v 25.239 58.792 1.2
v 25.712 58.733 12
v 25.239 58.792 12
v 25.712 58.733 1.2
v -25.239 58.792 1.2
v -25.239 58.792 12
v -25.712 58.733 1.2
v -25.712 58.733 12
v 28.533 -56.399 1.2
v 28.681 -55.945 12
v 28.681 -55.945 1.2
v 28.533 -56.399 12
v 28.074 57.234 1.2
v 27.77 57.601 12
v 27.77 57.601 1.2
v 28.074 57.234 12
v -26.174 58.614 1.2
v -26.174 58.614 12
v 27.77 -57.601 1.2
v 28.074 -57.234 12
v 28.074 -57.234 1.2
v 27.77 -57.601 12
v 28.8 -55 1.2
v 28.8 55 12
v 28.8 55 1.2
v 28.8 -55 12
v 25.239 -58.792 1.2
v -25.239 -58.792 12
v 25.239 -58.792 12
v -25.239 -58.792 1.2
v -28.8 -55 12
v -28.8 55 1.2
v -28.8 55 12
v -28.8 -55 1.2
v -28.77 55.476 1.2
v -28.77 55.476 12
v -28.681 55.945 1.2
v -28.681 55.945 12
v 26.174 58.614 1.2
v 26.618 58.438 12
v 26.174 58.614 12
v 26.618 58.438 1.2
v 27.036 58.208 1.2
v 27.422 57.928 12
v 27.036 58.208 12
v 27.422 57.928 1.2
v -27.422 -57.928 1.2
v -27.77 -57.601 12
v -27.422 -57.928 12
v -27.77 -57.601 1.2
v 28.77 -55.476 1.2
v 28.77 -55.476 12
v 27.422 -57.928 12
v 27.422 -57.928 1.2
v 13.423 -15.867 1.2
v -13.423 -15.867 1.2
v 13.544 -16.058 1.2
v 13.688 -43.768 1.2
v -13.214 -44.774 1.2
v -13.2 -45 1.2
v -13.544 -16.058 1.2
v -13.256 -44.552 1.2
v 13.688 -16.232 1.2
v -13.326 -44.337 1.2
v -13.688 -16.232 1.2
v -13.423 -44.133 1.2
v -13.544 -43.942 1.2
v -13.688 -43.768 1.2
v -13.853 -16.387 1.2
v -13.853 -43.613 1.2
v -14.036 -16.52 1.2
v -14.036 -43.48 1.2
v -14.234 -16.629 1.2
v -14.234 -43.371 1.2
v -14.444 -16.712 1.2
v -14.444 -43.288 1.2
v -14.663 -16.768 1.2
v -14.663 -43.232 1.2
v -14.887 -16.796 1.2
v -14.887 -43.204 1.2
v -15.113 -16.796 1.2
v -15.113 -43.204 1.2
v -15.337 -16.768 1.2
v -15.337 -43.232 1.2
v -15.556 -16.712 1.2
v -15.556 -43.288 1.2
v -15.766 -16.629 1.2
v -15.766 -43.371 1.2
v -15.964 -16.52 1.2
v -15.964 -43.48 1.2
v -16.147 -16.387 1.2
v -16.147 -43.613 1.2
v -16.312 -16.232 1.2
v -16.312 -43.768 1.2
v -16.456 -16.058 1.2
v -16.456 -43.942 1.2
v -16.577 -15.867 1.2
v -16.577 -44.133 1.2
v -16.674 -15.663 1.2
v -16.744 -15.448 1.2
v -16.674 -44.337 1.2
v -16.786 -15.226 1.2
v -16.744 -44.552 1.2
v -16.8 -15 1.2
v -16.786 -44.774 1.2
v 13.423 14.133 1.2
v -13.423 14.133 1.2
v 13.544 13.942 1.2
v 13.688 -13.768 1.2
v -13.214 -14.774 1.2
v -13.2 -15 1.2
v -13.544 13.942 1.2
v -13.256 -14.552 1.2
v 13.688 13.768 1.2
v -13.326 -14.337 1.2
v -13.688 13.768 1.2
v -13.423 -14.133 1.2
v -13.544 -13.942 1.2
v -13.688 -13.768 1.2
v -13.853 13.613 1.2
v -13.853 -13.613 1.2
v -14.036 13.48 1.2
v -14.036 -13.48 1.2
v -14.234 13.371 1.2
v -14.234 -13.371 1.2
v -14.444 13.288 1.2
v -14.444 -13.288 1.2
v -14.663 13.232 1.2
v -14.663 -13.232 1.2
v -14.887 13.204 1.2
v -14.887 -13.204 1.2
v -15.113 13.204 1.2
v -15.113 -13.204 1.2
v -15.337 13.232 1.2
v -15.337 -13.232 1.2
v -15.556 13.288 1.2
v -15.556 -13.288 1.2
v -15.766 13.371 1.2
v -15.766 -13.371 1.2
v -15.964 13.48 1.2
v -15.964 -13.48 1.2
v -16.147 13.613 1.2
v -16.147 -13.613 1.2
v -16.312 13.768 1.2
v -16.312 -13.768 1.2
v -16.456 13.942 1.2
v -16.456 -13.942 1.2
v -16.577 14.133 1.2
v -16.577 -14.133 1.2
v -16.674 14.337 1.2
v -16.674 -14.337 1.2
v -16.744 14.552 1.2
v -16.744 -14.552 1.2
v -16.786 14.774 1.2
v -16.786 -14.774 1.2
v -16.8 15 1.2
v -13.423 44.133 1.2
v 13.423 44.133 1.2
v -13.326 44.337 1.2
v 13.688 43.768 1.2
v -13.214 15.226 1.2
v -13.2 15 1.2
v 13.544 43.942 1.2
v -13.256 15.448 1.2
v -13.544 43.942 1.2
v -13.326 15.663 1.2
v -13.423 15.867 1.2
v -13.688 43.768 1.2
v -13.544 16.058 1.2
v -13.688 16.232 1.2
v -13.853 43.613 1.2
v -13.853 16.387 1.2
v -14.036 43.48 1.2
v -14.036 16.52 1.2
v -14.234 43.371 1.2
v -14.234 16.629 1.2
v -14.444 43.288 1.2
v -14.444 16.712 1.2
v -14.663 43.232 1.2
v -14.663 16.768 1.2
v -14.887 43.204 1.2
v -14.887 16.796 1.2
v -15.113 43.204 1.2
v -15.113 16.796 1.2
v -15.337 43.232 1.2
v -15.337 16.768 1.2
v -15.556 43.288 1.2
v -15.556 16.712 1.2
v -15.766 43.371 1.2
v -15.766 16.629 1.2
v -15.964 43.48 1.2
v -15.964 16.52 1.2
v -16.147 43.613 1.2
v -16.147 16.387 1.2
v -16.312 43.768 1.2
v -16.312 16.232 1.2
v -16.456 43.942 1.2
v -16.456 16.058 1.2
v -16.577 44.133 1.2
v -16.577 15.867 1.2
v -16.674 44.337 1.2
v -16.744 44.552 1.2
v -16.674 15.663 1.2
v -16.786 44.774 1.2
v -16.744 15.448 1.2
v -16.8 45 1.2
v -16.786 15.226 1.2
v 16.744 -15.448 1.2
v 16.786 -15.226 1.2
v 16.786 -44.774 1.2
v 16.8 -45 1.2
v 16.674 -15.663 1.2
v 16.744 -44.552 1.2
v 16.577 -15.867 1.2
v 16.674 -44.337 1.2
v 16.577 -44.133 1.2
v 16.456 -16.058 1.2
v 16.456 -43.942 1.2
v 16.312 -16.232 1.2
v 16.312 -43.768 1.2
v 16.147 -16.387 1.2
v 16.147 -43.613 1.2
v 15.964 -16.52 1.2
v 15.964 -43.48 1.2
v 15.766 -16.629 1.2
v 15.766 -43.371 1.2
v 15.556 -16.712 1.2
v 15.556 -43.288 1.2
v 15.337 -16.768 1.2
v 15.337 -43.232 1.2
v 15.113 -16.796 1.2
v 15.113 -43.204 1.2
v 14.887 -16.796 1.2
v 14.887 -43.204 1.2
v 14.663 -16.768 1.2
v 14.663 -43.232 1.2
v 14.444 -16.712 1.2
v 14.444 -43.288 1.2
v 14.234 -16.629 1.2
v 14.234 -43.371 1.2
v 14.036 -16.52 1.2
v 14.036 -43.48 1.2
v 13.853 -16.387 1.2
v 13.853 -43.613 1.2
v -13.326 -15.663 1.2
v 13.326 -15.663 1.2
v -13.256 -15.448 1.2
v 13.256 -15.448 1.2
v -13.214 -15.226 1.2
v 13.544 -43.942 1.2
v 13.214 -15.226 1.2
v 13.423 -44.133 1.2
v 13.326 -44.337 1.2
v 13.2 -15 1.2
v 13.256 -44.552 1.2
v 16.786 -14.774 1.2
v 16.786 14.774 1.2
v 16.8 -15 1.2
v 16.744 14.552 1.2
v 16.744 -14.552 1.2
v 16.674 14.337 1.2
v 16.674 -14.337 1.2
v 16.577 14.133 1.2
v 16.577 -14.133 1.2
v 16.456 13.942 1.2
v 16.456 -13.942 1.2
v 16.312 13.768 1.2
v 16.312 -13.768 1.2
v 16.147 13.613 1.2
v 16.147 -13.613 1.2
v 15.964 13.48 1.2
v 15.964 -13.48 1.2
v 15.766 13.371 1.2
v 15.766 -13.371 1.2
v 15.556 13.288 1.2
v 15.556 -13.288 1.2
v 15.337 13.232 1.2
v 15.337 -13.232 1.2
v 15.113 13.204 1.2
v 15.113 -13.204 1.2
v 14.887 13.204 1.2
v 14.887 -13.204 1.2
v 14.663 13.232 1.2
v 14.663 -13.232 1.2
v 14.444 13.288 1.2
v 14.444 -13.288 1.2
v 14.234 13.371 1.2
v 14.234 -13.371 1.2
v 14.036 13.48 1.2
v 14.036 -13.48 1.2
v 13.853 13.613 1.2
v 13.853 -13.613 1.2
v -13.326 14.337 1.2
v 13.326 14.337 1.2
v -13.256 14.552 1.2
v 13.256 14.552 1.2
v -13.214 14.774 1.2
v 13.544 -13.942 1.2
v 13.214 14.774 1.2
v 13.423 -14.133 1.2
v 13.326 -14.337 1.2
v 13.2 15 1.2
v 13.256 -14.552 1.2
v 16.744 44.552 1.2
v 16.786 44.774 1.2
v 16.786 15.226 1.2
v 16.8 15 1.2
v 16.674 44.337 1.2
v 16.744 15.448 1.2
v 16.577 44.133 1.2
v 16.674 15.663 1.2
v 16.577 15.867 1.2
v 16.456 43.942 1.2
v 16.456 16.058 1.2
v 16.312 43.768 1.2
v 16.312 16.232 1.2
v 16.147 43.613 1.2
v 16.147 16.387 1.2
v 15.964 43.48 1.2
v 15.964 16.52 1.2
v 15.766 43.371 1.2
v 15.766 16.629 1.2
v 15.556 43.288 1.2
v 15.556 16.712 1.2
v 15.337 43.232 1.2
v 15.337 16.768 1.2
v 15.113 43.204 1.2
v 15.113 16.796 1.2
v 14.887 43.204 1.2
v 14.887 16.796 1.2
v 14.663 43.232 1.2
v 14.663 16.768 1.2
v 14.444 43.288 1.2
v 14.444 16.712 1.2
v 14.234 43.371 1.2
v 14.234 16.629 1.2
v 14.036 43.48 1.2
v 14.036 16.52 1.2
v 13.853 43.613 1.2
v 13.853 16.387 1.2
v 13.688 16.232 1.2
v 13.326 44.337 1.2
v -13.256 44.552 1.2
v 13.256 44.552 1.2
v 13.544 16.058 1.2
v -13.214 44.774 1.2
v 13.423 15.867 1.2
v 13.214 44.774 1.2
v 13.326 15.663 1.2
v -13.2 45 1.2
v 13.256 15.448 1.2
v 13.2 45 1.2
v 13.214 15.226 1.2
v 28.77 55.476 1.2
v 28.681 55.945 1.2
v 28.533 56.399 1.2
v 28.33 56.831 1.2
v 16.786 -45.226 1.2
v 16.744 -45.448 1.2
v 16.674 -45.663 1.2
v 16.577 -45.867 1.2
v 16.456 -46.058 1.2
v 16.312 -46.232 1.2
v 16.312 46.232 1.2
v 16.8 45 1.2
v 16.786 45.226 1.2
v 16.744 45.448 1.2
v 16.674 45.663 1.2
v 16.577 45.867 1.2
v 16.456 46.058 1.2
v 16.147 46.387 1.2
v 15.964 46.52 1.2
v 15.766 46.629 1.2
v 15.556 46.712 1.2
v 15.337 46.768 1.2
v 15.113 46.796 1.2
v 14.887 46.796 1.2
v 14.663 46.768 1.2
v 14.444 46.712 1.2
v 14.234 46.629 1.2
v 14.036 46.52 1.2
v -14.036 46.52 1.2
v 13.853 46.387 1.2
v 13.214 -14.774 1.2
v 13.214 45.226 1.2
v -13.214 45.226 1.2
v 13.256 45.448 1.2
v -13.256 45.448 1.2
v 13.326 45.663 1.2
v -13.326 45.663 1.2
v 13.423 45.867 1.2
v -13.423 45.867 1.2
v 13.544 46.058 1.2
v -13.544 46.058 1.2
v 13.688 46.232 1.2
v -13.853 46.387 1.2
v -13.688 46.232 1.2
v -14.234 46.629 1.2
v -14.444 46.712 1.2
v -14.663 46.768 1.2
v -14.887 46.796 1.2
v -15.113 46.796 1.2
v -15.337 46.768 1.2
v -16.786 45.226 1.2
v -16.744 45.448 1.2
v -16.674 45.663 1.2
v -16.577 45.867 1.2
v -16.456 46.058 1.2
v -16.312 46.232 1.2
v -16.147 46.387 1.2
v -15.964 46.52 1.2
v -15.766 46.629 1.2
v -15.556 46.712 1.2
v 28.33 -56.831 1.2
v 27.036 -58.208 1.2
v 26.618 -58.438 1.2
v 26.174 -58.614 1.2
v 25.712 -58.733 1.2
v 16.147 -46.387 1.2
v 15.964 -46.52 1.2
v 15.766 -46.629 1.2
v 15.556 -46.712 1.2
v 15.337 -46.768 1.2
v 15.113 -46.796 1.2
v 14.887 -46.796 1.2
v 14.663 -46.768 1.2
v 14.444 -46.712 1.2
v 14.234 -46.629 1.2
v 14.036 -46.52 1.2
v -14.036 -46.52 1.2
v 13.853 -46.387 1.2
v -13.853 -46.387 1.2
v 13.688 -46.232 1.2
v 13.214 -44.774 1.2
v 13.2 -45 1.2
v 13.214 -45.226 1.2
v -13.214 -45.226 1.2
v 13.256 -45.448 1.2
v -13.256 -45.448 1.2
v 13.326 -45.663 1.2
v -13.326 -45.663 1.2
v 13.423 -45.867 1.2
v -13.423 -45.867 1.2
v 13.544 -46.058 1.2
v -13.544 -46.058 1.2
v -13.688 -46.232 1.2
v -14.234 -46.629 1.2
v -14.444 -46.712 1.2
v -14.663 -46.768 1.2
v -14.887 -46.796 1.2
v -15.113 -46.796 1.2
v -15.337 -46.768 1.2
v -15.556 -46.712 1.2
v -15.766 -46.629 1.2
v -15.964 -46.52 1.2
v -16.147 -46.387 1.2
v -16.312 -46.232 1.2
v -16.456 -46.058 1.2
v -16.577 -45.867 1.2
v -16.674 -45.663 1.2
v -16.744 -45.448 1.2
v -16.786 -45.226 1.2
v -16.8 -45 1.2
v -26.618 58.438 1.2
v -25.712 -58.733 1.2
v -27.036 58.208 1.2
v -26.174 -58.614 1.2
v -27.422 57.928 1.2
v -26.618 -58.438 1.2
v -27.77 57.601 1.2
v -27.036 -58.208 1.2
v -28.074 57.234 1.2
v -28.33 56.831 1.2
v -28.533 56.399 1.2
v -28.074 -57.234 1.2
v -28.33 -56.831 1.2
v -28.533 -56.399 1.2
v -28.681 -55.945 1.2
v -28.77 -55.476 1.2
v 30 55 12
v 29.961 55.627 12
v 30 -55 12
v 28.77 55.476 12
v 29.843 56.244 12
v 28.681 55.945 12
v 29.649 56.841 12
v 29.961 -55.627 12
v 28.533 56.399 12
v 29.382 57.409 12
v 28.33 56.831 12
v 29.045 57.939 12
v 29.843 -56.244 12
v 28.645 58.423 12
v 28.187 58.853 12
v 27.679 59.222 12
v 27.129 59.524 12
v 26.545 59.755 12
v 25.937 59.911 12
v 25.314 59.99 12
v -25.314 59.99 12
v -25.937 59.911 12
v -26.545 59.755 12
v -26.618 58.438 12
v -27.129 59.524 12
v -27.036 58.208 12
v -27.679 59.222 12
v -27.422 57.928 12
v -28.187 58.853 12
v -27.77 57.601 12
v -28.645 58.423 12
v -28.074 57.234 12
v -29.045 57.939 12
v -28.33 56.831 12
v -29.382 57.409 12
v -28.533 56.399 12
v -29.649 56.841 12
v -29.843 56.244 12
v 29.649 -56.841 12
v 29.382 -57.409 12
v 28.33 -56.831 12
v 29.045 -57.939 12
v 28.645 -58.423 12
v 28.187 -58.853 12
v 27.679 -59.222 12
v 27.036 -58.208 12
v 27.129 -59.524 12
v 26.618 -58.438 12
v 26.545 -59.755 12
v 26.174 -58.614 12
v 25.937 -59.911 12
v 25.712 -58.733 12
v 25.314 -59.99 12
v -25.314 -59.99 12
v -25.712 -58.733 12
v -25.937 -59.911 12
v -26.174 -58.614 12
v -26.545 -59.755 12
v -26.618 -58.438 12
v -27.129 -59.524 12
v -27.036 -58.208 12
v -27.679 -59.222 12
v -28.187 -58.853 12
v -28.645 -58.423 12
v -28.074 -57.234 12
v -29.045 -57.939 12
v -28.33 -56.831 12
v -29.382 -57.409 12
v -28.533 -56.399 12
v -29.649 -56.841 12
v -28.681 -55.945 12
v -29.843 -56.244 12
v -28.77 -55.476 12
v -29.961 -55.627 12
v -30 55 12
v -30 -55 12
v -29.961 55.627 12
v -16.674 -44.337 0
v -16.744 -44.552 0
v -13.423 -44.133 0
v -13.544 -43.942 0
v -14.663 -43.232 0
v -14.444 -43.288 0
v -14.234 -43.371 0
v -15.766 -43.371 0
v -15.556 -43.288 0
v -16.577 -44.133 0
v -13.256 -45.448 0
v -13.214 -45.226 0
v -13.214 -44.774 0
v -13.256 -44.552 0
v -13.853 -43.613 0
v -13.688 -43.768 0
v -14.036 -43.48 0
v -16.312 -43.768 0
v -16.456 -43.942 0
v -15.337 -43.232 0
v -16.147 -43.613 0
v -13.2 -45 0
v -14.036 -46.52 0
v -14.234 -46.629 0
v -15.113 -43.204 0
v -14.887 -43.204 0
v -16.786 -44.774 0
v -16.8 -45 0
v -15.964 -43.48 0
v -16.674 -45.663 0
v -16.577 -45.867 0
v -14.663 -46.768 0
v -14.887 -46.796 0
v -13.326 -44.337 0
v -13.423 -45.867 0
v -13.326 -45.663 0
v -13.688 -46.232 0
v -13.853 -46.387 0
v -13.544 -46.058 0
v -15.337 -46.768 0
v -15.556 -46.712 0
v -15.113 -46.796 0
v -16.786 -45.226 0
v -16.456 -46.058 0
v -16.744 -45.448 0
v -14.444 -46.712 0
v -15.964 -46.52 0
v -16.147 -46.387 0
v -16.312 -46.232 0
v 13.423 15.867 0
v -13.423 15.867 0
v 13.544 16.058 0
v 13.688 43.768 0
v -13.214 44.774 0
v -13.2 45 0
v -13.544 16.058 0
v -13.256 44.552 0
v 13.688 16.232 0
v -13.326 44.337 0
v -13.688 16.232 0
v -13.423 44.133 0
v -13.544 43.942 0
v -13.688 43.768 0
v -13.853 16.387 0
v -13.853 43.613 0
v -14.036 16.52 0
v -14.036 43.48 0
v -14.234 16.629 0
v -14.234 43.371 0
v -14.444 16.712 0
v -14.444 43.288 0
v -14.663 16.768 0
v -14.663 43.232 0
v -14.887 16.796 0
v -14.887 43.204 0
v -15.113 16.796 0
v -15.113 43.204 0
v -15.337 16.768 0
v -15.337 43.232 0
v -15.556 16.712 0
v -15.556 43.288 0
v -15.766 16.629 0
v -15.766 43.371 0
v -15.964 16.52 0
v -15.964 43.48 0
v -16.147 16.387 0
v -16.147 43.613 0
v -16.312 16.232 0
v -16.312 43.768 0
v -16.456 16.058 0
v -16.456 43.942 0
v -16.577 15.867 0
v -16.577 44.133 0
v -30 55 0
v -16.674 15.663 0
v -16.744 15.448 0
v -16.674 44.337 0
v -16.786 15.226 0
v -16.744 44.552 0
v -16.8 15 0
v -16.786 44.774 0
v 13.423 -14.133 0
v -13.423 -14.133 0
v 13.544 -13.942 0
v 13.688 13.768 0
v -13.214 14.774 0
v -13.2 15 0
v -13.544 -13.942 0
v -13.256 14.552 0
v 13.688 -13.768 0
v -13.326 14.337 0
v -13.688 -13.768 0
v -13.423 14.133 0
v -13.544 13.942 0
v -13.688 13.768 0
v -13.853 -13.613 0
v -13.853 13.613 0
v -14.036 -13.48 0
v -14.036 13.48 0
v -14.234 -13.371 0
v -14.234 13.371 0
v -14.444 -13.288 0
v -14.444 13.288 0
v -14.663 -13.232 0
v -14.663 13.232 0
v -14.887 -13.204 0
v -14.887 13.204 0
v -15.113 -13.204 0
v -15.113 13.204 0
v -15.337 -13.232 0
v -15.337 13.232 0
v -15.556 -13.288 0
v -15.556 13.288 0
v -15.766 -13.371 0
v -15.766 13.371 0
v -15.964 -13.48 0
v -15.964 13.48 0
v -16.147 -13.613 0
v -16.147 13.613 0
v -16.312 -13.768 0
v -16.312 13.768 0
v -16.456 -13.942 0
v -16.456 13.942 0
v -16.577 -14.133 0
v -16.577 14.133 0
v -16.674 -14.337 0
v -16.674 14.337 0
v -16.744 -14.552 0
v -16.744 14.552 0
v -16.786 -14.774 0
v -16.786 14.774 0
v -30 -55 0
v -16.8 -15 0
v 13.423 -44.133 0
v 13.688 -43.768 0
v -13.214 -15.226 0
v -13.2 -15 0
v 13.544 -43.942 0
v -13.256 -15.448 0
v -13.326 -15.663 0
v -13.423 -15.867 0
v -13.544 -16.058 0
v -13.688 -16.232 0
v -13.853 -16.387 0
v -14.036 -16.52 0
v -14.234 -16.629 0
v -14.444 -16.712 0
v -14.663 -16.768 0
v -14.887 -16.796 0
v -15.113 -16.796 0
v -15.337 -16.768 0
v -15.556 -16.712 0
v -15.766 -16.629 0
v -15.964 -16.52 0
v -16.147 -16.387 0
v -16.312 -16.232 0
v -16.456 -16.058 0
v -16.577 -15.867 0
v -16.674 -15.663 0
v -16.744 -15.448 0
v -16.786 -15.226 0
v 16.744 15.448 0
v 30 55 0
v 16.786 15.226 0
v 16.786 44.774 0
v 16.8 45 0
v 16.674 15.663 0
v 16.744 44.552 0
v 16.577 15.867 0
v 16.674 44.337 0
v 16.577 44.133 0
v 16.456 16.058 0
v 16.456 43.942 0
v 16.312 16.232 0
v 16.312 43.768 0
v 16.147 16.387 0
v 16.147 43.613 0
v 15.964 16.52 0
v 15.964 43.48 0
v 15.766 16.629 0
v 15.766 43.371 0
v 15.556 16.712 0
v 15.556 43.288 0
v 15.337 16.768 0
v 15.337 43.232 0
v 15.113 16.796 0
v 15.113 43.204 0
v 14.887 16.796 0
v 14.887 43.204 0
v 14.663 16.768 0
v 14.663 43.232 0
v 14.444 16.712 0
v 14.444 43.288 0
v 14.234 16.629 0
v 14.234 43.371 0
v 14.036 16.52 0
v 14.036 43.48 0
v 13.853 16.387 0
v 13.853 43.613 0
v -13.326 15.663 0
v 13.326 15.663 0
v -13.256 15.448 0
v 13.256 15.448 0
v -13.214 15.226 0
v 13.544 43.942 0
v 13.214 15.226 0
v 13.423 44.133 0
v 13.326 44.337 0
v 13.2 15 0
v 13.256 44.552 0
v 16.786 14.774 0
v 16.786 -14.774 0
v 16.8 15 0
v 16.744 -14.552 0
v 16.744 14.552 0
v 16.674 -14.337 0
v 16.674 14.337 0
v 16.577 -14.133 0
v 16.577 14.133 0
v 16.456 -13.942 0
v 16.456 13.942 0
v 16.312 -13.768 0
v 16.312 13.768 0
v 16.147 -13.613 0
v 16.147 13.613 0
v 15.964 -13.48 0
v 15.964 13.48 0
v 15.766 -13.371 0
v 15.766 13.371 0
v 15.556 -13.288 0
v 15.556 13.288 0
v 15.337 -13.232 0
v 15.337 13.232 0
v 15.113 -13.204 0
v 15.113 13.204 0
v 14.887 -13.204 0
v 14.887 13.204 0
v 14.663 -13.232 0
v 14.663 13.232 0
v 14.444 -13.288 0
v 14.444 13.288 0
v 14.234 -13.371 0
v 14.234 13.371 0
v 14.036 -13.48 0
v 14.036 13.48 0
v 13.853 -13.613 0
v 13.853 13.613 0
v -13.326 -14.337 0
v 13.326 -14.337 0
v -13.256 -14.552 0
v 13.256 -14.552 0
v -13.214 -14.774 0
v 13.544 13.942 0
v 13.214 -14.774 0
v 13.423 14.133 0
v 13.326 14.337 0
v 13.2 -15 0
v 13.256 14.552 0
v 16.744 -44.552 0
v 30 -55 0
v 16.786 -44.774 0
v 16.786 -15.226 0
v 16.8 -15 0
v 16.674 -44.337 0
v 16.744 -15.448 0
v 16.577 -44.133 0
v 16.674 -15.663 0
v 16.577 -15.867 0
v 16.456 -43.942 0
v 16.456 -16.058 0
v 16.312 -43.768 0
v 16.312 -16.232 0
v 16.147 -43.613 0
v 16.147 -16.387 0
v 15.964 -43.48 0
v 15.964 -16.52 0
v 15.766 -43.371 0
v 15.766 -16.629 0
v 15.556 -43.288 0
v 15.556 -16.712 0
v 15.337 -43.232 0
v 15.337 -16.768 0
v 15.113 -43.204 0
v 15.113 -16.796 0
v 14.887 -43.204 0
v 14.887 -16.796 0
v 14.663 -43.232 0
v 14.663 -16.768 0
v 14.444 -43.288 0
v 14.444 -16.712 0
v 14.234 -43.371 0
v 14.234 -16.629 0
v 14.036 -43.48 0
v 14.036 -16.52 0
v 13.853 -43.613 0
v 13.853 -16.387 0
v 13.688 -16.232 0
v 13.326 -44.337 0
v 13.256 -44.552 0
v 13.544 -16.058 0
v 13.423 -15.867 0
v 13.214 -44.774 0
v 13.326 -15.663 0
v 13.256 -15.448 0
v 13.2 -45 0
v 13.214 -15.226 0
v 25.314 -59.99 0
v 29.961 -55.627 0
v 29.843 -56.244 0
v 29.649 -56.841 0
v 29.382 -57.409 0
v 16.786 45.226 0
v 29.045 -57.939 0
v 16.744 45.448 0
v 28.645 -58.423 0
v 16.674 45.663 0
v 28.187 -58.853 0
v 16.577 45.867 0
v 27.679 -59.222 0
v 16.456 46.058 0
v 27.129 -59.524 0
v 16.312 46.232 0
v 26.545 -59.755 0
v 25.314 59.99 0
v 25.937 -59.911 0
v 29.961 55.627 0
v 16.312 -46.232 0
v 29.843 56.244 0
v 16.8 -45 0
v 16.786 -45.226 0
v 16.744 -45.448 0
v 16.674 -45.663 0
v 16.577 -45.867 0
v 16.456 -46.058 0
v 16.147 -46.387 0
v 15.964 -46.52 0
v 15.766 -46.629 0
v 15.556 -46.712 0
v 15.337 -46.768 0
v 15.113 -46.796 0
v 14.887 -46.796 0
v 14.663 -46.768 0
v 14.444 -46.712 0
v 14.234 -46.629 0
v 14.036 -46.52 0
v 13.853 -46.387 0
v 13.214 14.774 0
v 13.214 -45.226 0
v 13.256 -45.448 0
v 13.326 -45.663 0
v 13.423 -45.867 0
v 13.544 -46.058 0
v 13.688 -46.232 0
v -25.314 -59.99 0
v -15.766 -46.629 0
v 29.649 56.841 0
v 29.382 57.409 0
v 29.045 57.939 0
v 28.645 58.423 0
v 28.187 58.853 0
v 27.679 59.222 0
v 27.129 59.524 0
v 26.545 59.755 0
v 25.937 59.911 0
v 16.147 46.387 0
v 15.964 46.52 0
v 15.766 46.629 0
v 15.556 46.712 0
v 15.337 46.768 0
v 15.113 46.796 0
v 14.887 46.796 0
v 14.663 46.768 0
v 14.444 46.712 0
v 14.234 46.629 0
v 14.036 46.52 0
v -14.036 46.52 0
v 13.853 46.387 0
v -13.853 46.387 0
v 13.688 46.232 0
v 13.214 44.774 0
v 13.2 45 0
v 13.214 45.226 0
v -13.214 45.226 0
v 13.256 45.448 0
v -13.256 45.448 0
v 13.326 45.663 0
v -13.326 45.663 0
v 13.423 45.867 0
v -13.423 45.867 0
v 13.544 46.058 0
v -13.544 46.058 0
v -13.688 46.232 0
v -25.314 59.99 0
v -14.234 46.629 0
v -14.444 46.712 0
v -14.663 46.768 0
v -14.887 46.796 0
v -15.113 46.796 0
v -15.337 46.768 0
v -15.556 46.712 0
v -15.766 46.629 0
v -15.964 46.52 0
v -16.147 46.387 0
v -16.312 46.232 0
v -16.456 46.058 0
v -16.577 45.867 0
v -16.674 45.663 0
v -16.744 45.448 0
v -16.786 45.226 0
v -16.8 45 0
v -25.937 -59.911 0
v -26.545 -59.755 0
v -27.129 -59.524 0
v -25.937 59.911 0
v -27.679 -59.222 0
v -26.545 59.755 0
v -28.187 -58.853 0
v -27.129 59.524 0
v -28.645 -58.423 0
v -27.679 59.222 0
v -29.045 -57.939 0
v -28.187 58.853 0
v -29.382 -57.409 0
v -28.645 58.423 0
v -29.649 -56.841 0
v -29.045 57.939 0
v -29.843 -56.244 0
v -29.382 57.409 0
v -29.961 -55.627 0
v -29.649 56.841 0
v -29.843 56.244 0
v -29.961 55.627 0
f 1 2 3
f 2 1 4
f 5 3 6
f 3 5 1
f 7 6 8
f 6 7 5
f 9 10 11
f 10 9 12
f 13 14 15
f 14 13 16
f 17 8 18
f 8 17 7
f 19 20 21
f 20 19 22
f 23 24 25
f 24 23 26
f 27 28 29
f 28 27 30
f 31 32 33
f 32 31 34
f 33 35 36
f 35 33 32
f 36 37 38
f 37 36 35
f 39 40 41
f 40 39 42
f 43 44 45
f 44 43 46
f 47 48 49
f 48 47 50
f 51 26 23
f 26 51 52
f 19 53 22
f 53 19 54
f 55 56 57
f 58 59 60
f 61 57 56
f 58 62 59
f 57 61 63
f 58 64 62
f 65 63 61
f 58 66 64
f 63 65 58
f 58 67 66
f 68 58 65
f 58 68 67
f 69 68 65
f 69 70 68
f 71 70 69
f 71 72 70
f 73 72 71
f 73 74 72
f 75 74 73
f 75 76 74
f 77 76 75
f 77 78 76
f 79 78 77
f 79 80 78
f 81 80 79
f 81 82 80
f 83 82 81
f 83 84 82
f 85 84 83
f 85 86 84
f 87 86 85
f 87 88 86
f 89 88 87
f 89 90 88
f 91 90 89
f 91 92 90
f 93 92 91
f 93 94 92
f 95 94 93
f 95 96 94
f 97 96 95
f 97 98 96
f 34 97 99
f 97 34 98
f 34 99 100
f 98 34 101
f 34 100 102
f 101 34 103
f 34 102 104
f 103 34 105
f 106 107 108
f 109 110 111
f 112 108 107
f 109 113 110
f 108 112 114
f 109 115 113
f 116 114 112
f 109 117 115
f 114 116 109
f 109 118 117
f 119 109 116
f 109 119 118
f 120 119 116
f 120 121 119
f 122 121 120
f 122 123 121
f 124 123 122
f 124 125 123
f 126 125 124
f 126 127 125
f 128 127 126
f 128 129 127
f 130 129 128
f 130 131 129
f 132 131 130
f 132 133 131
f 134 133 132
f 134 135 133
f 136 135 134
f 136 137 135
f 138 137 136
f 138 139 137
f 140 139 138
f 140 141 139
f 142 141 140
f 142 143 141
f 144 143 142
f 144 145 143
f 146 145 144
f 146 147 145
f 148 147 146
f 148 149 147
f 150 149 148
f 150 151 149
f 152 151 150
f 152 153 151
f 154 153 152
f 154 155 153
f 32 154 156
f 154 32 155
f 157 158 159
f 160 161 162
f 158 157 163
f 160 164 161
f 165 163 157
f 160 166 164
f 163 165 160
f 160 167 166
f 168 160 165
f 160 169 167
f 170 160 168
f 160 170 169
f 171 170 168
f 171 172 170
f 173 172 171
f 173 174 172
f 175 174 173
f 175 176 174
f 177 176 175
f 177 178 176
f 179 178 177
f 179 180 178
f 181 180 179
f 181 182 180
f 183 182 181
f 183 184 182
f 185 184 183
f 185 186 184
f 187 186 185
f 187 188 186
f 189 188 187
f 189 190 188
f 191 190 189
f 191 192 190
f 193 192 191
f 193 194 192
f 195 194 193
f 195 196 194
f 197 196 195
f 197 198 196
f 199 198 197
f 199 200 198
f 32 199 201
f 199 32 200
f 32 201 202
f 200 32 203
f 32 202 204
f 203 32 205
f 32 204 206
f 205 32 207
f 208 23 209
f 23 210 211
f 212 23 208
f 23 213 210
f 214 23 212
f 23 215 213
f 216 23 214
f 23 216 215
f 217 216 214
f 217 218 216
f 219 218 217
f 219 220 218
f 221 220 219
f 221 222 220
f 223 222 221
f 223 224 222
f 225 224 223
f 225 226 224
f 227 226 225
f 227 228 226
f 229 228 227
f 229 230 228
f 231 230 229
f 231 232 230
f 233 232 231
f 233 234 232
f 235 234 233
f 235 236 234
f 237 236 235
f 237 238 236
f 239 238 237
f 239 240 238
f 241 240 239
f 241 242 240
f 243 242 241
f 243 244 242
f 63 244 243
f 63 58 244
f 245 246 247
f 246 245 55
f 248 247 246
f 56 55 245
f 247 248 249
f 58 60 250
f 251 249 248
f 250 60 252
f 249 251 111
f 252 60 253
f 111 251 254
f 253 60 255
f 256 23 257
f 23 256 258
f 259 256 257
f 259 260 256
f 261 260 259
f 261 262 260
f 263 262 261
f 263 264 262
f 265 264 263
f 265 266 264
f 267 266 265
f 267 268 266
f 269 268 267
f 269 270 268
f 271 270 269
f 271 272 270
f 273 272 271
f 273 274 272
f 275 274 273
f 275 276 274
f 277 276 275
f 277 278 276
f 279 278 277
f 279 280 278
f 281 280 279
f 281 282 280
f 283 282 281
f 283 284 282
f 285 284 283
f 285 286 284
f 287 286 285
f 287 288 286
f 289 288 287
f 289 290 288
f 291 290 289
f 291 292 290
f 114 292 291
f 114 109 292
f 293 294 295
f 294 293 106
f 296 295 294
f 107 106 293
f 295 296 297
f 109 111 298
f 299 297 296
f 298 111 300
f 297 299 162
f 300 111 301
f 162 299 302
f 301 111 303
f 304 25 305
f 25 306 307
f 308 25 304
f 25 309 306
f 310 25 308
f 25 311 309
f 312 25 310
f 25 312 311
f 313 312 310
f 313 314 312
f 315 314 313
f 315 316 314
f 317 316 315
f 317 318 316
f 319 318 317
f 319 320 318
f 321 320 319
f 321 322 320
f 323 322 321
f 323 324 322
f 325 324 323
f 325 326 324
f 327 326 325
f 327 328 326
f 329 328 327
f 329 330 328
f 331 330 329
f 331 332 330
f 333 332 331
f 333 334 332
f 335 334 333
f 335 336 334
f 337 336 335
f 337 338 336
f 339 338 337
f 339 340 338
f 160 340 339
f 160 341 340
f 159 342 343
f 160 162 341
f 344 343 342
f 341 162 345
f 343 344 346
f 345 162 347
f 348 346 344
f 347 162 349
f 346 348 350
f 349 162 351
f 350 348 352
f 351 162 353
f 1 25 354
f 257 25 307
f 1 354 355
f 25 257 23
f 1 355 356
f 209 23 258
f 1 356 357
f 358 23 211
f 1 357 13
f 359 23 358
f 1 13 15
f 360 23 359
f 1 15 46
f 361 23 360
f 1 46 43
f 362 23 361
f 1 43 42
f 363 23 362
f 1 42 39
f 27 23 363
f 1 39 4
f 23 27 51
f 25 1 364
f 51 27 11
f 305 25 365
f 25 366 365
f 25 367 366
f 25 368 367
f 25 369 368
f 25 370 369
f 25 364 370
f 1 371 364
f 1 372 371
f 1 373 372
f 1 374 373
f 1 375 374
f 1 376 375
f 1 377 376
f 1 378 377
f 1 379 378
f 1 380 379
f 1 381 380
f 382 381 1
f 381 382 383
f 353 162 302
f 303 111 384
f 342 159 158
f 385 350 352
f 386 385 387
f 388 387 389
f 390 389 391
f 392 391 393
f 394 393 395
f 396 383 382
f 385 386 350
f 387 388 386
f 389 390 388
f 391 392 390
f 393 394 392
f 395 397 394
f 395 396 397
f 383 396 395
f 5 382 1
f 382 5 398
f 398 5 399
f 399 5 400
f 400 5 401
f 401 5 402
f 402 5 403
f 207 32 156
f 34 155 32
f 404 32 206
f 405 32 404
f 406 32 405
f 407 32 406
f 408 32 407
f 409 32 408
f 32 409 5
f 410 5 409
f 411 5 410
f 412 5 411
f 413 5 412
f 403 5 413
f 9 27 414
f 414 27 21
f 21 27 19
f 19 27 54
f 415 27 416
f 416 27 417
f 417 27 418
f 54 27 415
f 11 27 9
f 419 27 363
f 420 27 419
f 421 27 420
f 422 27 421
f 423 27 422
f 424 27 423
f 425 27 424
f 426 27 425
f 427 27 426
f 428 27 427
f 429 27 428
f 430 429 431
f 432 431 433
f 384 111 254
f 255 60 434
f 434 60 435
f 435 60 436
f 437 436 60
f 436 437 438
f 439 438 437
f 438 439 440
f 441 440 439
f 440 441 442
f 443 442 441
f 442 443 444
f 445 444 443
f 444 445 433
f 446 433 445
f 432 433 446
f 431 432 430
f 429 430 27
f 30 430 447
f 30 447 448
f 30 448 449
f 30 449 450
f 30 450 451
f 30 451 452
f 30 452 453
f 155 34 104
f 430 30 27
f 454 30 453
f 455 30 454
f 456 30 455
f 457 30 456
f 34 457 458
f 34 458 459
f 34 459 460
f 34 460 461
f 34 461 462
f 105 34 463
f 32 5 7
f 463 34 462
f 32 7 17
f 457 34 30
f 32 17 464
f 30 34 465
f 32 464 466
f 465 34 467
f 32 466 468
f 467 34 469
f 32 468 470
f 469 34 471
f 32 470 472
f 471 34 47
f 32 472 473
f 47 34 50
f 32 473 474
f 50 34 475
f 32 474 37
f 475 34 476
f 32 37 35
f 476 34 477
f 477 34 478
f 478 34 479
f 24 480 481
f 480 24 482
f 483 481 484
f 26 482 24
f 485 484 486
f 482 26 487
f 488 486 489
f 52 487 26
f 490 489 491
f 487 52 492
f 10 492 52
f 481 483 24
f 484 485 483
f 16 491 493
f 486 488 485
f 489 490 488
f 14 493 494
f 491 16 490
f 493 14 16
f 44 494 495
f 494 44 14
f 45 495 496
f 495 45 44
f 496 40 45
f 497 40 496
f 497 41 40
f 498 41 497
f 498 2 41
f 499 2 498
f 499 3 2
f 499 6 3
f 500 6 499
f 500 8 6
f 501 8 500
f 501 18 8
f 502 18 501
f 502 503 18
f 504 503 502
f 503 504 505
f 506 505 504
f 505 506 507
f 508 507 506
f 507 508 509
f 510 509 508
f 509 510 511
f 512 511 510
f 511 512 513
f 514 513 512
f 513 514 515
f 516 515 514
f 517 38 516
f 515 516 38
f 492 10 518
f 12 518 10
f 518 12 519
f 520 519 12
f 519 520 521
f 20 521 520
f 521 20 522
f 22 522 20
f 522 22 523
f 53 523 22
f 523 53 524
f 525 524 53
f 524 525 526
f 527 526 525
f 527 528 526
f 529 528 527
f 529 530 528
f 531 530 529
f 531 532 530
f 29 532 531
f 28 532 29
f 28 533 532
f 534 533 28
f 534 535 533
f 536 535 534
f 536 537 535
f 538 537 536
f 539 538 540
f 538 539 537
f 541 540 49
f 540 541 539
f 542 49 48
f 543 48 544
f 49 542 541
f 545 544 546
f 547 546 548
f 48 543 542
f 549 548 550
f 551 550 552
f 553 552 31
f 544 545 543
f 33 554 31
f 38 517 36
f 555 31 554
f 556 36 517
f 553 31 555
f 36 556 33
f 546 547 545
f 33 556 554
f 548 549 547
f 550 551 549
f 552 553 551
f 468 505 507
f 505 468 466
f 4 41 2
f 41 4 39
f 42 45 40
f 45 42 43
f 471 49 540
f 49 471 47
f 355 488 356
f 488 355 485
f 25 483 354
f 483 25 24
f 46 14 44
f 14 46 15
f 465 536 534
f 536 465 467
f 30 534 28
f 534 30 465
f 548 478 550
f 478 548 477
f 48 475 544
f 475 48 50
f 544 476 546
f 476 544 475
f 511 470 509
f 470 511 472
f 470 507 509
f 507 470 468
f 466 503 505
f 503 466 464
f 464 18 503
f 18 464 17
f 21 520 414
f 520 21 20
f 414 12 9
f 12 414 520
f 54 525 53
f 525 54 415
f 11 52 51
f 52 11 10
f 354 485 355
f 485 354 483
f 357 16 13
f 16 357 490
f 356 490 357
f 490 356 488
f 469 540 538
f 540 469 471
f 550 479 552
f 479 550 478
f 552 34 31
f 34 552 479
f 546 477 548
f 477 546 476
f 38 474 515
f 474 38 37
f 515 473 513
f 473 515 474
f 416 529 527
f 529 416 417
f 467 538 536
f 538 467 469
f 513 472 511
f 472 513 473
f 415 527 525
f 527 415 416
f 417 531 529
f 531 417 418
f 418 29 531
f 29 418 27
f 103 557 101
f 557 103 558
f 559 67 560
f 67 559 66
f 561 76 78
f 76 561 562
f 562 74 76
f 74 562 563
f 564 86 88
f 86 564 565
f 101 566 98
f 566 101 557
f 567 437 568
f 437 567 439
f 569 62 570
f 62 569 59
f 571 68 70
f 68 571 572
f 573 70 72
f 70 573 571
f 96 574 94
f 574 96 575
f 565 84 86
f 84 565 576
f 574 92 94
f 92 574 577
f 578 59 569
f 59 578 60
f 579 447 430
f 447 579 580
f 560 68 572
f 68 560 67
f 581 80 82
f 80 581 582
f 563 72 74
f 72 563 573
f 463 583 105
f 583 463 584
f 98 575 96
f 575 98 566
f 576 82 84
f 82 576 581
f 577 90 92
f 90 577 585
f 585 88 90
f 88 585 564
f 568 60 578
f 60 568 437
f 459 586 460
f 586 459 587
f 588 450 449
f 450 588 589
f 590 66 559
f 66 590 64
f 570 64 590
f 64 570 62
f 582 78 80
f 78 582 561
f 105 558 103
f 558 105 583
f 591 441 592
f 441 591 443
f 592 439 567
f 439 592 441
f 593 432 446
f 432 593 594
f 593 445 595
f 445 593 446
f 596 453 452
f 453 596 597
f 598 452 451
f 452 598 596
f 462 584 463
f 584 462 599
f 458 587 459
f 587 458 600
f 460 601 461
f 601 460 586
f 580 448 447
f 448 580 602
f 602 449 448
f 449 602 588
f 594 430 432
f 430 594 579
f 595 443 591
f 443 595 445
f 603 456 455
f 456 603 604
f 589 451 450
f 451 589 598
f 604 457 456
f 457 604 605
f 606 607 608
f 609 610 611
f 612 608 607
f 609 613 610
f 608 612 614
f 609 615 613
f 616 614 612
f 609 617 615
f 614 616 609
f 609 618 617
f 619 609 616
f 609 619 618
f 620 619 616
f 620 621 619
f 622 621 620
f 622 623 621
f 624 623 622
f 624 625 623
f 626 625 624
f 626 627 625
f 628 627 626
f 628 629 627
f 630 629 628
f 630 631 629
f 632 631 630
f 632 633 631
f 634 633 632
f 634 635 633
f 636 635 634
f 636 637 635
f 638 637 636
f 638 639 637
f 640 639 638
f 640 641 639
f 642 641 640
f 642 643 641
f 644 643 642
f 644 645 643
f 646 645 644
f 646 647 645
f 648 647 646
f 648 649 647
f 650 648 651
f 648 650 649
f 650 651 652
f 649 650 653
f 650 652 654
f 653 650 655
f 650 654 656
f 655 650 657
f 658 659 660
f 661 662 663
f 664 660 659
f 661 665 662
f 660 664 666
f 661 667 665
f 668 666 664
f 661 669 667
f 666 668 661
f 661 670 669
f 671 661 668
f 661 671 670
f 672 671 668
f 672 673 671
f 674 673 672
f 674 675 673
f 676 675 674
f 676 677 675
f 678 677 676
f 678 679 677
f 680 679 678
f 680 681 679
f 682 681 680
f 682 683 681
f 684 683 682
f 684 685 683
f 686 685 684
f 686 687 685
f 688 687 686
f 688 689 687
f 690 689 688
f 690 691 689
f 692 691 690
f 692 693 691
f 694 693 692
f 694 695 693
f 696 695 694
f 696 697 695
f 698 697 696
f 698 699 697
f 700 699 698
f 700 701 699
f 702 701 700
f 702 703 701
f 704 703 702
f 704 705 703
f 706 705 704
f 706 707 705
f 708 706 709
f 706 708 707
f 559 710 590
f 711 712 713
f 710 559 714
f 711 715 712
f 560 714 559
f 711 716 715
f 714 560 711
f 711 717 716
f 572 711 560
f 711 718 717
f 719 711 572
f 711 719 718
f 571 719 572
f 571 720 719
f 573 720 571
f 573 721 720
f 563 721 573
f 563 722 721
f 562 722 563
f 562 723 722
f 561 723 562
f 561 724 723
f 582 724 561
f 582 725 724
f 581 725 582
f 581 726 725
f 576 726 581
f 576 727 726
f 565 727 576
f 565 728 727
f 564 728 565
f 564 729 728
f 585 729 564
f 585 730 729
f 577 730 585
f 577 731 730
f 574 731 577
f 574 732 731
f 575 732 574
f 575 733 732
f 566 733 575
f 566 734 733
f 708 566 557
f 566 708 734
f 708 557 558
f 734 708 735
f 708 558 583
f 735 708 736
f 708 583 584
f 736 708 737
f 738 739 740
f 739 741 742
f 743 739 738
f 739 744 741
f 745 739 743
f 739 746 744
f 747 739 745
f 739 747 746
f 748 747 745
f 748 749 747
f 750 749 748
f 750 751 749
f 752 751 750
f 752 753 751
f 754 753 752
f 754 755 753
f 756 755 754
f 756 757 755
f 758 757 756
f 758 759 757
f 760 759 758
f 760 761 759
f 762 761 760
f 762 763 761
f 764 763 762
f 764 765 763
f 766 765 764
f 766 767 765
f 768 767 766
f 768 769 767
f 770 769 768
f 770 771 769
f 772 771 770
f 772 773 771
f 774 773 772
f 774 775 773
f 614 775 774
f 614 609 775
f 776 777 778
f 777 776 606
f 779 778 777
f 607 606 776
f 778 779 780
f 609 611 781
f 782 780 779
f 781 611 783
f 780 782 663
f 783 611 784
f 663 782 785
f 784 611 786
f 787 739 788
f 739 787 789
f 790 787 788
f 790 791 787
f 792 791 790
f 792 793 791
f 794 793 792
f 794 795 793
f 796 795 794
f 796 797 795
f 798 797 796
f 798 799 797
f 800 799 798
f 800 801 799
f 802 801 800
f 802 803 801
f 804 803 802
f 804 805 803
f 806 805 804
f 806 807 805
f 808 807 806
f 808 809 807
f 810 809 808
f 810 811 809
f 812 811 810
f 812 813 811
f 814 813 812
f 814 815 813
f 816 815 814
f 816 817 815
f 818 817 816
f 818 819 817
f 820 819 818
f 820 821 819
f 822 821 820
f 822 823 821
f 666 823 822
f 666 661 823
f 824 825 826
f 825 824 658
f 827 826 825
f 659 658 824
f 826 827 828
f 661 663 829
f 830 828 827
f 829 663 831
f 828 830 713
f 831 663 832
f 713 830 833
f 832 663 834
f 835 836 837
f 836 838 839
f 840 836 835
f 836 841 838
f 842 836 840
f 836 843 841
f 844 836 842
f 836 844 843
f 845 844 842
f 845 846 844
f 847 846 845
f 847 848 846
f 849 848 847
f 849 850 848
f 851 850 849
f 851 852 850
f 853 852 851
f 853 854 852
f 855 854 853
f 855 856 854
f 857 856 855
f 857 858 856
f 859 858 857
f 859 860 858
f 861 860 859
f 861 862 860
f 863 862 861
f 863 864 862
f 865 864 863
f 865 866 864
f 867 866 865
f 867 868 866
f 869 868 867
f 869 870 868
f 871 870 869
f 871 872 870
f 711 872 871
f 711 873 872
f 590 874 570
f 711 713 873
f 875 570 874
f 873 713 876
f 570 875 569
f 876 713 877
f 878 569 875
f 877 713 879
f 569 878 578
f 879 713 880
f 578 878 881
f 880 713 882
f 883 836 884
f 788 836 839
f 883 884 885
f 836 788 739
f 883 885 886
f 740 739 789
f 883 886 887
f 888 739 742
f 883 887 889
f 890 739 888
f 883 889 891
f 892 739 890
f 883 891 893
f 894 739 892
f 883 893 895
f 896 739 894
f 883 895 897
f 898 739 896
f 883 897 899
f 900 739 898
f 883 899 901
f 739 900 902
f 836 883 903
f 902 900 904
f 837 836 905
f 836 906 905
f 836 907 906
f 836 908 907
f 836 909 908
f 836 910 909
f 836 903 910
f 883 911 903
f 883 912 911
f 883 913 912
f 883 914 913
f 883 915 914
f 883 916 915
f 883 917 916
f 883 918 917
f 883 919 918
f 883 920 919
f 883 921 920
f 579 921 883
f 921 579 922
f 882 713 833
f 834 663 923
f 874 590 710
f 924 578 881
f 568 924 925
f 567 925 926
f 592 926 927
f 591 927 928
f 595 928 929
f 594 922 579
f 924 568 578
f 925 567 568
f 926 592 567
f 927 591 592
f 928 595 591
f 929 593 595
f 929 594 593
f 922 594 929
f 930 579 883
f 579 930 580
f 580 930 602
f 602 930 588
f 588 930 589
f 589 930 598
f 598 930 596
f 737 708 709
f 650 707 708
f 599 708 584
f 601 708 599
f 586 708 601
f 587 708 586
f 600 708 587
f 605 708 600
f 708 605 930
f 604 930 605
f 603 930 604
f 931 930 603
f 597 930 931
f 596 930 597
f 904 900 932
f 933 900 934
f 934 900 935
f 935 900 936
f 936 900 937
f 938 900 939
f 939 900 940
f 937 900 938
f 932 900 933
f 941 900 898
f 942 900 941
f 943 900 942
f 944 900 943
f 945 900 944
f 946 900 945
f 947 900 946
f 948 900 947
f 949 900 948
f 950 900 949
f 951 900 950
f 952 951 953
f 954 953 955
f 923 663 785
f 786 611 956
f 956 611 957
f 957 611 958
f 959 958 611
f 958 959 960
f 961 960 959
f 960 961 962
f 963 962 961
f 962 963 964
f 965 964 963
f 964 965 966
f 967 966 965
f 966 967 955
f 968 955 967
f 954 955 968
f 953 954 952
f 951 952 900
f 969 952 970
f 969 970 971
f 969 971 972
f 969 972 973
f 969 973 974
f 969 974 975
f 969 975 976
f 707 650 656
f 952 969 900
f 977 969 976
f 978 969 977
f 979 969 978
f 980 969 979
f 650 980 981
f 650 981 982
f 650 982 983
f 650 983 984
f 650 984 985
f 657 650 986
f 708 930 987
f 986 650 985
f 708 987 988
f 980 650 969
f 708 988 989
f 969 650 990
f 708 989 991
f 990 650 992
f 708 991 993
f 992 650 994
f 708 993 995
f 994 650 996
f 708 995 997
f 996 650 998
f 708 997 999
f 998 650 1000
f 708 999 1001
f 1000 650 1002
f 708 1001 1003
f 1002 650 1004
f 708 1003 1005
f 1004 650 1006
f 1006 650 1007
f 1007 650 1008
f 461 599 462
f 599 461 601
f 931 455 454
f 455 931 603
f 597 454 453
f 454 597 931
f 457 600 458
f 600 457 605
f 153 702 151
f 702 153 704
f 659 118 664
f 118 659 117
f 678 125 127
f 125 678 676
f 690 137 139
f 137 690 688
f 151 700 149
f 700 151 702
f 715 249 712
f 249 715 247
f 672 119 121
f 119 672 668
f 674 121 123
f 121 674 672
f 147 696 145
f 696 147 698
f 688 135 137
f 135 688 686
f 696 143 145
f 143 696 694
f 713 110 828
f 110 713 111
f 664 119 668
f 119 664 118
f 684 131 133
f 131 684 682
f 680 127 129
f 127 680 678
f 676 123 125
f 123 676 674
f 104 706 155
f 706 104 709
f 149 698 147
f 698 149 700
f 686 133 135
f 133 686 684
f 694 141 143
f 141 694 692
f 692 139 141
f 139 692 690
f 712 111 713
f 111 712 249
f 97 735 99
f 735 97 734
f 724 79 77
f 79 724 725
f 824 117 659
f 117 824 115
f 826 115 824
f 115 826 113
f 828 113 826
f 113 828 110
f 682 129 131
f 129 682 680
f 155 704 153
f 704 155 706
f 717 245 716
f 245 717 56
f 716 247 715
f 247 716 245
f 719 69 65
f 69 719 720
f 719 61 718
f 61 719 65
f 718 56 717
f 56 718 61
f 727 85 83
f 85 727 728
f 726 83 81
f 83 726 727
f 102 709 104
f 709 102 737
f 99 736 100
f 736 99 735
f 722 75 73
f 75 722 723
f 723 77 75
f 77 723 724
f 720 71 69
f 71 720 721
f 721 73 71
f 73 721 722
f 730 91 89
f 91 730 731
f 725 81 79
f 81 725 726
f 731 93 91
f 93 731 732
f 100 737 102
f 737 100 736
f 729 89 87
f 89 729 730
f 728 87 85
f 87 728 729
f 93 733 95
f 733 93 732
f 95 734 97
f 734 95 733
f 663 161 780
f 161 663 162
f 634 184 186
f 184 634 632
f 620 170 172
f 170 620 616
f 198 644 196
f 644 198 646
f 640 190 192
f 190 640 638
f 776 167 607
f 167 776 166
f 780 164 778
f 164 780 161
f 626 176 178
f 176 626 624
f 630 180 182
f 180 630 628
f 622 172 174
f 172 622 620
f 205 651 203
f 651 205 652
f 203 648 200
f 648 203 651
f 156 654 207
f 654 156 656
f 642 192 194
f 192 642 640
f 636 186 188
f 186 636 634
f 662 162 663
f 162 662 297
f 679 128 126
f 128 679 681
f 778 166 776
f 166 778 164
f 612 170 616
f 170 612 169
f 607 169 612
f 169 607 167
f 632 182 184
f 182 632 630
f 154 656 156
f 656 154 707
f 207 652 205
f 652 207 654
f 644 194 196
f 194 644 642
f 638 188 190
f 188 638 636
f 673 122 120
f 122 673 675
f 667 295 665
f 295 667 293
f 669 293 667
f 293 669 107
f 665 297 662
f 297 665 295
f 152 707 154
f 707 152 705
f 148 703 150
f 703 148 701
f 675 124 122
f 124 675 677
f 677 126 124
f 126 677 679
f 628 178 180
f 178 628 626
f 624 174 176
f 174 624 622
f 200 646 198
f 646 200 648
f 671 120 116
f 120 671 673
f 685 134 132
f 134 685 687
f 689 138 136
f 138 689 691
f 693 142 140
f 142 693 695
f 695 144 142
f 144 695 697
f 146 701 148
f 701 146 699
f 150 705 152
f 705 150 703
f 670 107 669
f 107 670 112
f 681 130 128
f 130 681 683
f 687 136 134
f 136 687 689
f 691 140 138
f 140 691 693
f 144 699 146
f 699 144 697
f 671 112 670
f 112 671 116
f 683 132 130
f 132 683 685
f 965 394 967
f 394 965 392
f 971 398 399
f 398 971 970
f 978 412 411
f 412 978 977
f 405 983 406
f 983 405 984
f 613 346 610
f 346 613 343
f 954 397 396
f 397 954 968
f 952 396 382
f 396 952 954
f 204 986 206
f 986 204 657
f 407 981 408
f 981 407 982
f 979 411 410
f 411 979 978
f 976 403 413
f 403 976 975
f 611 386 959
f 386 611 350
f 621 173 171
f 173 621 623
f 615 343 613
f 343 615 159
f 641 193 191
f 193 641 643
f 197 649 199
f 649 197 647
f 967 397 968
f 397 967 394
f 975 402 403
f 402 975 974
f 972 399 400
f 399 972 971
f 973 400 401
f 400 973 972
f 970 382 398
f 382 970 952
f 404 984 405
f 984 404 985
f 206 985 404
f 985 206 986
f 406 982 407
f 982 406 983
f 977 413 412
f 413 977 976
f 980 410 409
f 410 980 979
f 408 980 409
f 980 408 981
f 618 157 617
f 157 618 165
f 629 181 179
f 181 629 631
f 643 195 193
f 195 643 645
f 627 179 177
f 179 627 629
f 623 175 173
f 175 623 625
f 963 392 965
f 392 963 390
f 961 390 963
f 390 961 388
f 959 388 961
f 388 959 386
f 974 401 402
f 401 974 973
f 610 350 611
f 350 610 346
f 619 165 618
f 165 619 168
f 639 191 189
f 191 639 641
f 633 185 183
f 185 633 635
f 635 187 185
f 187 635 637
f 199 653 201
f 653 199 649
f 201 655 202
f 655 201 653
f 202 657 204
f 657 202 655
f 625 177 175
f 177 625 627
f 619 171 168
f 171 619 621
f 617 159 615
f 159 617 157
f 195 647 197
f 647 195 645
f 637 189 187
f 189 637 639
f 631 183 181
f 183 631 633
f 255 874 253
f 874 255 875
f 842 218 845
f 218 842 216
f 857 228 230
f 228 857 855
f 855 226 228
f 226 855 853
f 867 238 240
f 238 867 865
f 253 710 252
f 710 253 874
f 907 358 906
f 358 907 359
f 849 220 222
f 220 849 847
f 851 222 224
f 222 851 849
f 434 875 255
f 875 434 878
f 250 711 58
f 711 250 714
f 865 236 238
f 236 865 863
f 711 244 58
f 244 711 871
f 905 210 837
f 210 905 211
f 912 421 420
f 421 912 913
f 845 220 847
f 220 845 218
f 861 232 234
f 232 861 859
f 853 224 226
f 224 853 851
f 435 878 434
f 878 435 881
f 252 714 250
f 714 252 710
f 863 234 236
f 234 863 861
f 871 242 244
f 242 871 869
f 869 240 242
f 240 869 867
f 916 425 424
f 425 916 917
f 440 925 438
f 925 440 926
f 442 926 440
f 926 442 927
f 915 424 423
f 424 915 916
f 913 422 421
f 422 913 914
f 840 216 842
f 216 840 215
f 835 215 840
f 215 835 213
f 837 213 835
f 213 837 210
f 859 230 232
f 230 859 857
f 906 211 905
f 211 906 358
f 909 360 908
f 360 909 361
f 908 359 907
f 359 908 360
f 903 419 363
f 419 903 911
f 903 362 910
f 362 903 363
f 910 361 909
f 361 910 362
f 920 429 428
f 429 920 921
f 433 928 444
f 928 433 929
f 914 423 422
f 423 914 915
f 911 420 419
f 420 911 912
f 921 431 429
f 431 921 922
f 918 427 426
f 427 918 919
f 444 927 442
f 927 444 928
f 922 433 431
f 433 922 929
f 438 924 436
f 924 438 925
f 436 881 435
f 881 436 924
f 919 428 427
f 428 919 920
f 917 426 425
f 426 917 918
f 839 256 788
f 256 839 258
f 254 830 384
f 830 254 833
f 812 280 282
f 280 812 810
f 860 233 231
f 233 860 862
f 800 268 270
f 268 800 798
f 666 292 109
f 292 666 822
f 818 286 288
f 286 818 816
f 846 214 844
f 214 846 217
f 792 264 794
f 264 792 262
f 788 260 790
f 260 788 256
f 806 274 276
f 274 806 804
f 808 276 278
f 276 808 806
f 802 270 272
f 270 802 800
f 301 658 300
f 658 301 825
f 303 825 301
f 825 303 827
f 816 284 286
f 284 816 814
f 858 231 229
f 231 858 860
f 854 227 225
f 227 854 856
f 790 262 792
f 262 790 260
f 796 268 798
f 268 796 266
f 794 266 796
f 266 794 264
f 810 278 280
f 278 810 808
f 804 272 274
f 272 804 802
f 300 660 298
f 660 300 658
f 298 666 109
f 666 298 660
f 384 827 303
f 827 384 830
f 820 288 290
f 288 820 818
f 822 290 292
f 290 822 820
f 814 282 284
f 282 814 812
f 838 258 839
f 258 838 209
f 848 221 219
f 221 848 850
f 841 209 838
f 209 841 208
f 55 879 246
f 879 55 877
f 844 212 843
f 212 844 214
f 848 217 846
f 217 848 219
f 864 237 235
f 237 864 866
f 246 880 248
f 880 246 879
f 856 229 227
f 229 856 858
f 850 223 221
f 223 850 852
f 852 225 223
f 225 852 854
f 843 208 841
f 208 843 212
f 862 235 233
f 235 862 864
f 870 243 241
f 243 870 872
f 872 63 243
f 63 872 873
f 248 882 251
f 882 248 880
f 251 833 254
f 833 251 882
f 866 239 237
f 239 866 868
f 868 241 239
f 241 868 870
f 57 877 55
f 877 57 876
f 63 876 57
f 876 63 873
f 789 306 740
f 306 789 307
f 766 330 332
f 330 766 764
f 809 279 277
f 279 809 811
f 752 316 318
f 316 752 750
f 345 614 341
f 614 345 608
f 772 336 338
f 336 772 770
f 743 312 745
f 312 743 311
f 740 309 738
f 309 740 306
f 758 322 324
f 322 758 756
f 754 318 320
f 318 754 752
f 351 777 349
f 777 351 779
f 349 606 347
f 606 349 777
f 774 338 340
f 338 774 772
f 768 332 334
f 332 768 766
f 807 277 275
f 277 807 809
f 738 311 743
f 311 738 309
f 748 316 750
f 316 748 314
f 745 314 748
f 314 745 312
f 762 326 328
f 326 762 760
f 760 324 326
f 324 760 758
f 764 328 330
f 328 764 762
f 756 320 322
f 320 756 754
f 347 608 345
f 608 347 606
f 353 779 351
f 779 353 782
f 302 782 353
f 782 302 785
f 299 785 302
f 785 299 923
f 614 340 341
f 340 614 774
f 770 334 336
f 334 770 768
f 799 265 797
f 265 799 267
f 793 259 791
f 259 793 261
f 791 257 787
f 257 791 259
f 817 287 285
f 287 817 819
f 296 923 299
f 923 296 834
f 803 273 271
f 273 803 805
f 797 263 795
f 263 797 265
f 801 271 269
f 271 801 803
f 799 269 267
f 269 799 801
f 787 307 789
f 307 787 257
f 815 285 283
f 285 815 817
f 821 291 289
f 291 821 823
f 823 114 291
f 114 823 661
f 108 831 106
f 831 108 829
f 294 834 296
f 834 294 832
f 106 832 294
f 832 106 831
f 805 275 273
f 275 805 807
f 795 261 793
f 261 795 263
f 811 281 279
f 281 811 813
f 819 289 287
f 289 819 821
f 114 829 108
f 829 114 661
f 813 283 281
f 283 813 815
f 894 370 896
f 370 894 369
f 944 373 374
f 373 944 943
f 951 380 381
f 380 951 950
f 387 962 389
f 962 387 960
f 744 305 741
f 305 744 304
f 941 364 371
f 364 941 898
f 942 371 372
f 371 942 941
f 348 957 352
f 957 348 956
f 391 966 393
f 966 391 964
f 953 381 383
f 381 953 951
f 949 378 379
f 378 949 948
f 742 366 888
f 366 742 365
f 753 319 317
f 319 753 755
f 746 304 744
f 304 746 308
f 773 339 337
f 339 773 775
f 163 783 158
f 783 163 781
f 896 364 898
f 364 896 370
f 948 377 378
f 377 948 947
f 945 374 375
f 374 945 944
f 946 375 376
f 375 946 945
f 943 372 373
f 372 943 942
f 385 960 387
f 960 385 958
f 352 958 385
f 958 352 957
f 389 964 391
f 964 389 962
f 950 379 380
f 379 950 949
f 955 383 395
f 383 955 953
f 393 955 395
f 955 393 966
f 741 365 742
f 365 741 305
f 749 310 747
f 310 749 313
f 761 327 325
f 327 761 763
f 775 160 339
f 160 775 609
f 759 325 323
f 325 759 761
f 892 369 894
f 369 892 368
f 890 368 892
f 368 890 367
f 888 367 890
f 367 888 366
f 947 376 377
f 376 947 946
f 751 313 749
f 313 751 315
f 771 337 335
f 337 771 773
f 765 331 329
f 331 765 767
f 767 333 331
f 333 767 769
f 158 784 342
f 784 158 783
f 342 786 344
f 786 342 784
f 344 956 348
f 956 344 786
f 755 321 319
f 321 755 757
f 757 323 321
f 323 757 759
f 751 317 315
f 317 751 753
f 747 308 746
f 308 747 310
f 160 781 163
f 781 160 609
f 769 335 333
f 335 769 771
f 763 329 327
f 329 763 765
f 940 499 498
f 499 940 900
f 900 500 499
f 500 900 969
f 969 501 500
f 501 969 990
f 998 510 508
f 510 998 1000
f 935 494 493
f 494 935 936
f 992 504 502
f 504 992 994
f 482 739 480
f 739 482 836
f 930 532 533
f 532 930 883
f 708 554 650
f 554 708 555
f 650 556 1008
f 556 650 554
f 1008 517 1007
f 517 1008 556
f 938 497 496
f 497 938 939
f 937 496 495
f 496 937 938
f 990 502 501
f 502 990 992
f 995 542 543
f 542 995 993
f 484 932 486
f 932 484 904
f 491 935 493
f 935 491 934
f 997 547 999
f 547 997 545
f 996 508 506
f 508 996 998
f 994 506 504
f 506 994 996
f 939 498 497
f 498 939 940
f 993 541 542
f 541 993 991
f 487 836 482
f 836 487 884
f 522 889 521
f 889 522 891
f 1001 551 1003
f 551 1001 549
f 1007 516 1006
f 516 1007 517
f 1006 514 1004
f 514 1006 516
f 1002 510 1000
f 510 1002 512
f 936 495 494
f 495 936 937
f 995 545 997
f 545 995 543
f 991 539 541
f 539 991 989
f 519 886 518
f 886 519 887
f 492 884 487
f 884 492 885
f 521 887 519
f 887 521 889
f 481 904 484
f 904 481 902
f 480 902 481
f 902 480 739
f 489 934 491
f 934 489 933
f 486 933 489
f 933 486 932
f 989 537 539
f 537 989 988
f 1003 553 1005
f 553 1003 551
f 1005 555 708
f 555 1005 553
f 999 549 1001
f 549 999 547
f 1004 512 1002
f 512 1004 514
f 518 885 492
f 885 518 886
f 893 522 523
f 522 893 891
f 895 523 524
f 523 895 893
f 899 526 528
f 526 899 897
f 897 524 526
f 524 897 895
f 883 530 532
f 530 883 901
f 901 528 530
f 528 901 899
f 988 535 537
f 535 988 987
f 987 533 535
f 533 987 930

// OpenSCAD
$fn = 50;


difference() {
	union() {
		hull() {
			translate(v = [-25.0000000000, 55.0000000000, 0]) {
				cylinder(h = 12, r = 5);
			}
			translate(v = [25.0000000000, 55.0000000000, 0]) {
				cylinder(h = 12, r = 5);
			}
			translate(v = [-25.0000000000, -55.0000000000, 0]) {
				cylinder(h = 12, r = 5);
			}
			translate(v = [25.0000000000, -55.0000000000, 0]) {
				cylinder(h = 12, r = 5);
			}
		}
	}
	union() {
		translate(v = [0, 0, 1.2000000000]) {
			hull() {
				translate(v = [-25.0000000000, 55.0000000000, 0]) {
					cylinder(h = 10.8000000000, r = 3.8000000000);
				}
				translate(v = [25.0000000000, 55.0000000000, 0]) {
					cylinder(h = 10.8000000000, r = 3.8000000000);
				}
				translate(v = [-25.0000000000, -55.0000000000, 0]) {
					cylinder(h = 10.8000000000, r = 3.8000000000);
				}
				translate(v = [25.0000000000, -55.0000000000, 0]) {
					cylinder(h = 10.8000000000, r = 3.8000000000);
				}
			}
		}
		#translate(v = [-15.0000000000, -45.0000000000, 0]) {
			cylinder(h = 1.2000000000, r = 1.8000000000);
		}
		#translate(v = [-15.0000000000, -15.0000000000, 0]) {
			cylinder(h = 1.2000000000, r = 1.8000000000);
		}
		#translate(v = [-15.0000000000, 15.0000000000, 0]) {
			cylinder(h = 1.2000000000, r = 1.8000000000);
		}
		#translate(v = [-15.0000000000, 45.0000000000, 0]) {
			cylinder(h = 1.2000000000, r = 1.8000000000);
		}
		#translate(v = [15.0000000000, -45.0000000000, 0]) {
			cylinder(h = 1.2000000000, r = 1.8000000000);
		}
		#translate(v = [15.0000000000, -15.0000000000, 0]) {
			cylinder(h = 1.2000000000, r = 1.8000000000);
		}
		#translate(v = [15.0000000000, 15.0000000000, 0]) {
			cylinder(h = 1.2000000000, r = 1.8000000000);
		}
		#translate(v = [15.0000000000, 45.0000000000, 0]) {
			cylinder(h = 1.2000000000, r = 1.8000000000);
		}
	}
}
